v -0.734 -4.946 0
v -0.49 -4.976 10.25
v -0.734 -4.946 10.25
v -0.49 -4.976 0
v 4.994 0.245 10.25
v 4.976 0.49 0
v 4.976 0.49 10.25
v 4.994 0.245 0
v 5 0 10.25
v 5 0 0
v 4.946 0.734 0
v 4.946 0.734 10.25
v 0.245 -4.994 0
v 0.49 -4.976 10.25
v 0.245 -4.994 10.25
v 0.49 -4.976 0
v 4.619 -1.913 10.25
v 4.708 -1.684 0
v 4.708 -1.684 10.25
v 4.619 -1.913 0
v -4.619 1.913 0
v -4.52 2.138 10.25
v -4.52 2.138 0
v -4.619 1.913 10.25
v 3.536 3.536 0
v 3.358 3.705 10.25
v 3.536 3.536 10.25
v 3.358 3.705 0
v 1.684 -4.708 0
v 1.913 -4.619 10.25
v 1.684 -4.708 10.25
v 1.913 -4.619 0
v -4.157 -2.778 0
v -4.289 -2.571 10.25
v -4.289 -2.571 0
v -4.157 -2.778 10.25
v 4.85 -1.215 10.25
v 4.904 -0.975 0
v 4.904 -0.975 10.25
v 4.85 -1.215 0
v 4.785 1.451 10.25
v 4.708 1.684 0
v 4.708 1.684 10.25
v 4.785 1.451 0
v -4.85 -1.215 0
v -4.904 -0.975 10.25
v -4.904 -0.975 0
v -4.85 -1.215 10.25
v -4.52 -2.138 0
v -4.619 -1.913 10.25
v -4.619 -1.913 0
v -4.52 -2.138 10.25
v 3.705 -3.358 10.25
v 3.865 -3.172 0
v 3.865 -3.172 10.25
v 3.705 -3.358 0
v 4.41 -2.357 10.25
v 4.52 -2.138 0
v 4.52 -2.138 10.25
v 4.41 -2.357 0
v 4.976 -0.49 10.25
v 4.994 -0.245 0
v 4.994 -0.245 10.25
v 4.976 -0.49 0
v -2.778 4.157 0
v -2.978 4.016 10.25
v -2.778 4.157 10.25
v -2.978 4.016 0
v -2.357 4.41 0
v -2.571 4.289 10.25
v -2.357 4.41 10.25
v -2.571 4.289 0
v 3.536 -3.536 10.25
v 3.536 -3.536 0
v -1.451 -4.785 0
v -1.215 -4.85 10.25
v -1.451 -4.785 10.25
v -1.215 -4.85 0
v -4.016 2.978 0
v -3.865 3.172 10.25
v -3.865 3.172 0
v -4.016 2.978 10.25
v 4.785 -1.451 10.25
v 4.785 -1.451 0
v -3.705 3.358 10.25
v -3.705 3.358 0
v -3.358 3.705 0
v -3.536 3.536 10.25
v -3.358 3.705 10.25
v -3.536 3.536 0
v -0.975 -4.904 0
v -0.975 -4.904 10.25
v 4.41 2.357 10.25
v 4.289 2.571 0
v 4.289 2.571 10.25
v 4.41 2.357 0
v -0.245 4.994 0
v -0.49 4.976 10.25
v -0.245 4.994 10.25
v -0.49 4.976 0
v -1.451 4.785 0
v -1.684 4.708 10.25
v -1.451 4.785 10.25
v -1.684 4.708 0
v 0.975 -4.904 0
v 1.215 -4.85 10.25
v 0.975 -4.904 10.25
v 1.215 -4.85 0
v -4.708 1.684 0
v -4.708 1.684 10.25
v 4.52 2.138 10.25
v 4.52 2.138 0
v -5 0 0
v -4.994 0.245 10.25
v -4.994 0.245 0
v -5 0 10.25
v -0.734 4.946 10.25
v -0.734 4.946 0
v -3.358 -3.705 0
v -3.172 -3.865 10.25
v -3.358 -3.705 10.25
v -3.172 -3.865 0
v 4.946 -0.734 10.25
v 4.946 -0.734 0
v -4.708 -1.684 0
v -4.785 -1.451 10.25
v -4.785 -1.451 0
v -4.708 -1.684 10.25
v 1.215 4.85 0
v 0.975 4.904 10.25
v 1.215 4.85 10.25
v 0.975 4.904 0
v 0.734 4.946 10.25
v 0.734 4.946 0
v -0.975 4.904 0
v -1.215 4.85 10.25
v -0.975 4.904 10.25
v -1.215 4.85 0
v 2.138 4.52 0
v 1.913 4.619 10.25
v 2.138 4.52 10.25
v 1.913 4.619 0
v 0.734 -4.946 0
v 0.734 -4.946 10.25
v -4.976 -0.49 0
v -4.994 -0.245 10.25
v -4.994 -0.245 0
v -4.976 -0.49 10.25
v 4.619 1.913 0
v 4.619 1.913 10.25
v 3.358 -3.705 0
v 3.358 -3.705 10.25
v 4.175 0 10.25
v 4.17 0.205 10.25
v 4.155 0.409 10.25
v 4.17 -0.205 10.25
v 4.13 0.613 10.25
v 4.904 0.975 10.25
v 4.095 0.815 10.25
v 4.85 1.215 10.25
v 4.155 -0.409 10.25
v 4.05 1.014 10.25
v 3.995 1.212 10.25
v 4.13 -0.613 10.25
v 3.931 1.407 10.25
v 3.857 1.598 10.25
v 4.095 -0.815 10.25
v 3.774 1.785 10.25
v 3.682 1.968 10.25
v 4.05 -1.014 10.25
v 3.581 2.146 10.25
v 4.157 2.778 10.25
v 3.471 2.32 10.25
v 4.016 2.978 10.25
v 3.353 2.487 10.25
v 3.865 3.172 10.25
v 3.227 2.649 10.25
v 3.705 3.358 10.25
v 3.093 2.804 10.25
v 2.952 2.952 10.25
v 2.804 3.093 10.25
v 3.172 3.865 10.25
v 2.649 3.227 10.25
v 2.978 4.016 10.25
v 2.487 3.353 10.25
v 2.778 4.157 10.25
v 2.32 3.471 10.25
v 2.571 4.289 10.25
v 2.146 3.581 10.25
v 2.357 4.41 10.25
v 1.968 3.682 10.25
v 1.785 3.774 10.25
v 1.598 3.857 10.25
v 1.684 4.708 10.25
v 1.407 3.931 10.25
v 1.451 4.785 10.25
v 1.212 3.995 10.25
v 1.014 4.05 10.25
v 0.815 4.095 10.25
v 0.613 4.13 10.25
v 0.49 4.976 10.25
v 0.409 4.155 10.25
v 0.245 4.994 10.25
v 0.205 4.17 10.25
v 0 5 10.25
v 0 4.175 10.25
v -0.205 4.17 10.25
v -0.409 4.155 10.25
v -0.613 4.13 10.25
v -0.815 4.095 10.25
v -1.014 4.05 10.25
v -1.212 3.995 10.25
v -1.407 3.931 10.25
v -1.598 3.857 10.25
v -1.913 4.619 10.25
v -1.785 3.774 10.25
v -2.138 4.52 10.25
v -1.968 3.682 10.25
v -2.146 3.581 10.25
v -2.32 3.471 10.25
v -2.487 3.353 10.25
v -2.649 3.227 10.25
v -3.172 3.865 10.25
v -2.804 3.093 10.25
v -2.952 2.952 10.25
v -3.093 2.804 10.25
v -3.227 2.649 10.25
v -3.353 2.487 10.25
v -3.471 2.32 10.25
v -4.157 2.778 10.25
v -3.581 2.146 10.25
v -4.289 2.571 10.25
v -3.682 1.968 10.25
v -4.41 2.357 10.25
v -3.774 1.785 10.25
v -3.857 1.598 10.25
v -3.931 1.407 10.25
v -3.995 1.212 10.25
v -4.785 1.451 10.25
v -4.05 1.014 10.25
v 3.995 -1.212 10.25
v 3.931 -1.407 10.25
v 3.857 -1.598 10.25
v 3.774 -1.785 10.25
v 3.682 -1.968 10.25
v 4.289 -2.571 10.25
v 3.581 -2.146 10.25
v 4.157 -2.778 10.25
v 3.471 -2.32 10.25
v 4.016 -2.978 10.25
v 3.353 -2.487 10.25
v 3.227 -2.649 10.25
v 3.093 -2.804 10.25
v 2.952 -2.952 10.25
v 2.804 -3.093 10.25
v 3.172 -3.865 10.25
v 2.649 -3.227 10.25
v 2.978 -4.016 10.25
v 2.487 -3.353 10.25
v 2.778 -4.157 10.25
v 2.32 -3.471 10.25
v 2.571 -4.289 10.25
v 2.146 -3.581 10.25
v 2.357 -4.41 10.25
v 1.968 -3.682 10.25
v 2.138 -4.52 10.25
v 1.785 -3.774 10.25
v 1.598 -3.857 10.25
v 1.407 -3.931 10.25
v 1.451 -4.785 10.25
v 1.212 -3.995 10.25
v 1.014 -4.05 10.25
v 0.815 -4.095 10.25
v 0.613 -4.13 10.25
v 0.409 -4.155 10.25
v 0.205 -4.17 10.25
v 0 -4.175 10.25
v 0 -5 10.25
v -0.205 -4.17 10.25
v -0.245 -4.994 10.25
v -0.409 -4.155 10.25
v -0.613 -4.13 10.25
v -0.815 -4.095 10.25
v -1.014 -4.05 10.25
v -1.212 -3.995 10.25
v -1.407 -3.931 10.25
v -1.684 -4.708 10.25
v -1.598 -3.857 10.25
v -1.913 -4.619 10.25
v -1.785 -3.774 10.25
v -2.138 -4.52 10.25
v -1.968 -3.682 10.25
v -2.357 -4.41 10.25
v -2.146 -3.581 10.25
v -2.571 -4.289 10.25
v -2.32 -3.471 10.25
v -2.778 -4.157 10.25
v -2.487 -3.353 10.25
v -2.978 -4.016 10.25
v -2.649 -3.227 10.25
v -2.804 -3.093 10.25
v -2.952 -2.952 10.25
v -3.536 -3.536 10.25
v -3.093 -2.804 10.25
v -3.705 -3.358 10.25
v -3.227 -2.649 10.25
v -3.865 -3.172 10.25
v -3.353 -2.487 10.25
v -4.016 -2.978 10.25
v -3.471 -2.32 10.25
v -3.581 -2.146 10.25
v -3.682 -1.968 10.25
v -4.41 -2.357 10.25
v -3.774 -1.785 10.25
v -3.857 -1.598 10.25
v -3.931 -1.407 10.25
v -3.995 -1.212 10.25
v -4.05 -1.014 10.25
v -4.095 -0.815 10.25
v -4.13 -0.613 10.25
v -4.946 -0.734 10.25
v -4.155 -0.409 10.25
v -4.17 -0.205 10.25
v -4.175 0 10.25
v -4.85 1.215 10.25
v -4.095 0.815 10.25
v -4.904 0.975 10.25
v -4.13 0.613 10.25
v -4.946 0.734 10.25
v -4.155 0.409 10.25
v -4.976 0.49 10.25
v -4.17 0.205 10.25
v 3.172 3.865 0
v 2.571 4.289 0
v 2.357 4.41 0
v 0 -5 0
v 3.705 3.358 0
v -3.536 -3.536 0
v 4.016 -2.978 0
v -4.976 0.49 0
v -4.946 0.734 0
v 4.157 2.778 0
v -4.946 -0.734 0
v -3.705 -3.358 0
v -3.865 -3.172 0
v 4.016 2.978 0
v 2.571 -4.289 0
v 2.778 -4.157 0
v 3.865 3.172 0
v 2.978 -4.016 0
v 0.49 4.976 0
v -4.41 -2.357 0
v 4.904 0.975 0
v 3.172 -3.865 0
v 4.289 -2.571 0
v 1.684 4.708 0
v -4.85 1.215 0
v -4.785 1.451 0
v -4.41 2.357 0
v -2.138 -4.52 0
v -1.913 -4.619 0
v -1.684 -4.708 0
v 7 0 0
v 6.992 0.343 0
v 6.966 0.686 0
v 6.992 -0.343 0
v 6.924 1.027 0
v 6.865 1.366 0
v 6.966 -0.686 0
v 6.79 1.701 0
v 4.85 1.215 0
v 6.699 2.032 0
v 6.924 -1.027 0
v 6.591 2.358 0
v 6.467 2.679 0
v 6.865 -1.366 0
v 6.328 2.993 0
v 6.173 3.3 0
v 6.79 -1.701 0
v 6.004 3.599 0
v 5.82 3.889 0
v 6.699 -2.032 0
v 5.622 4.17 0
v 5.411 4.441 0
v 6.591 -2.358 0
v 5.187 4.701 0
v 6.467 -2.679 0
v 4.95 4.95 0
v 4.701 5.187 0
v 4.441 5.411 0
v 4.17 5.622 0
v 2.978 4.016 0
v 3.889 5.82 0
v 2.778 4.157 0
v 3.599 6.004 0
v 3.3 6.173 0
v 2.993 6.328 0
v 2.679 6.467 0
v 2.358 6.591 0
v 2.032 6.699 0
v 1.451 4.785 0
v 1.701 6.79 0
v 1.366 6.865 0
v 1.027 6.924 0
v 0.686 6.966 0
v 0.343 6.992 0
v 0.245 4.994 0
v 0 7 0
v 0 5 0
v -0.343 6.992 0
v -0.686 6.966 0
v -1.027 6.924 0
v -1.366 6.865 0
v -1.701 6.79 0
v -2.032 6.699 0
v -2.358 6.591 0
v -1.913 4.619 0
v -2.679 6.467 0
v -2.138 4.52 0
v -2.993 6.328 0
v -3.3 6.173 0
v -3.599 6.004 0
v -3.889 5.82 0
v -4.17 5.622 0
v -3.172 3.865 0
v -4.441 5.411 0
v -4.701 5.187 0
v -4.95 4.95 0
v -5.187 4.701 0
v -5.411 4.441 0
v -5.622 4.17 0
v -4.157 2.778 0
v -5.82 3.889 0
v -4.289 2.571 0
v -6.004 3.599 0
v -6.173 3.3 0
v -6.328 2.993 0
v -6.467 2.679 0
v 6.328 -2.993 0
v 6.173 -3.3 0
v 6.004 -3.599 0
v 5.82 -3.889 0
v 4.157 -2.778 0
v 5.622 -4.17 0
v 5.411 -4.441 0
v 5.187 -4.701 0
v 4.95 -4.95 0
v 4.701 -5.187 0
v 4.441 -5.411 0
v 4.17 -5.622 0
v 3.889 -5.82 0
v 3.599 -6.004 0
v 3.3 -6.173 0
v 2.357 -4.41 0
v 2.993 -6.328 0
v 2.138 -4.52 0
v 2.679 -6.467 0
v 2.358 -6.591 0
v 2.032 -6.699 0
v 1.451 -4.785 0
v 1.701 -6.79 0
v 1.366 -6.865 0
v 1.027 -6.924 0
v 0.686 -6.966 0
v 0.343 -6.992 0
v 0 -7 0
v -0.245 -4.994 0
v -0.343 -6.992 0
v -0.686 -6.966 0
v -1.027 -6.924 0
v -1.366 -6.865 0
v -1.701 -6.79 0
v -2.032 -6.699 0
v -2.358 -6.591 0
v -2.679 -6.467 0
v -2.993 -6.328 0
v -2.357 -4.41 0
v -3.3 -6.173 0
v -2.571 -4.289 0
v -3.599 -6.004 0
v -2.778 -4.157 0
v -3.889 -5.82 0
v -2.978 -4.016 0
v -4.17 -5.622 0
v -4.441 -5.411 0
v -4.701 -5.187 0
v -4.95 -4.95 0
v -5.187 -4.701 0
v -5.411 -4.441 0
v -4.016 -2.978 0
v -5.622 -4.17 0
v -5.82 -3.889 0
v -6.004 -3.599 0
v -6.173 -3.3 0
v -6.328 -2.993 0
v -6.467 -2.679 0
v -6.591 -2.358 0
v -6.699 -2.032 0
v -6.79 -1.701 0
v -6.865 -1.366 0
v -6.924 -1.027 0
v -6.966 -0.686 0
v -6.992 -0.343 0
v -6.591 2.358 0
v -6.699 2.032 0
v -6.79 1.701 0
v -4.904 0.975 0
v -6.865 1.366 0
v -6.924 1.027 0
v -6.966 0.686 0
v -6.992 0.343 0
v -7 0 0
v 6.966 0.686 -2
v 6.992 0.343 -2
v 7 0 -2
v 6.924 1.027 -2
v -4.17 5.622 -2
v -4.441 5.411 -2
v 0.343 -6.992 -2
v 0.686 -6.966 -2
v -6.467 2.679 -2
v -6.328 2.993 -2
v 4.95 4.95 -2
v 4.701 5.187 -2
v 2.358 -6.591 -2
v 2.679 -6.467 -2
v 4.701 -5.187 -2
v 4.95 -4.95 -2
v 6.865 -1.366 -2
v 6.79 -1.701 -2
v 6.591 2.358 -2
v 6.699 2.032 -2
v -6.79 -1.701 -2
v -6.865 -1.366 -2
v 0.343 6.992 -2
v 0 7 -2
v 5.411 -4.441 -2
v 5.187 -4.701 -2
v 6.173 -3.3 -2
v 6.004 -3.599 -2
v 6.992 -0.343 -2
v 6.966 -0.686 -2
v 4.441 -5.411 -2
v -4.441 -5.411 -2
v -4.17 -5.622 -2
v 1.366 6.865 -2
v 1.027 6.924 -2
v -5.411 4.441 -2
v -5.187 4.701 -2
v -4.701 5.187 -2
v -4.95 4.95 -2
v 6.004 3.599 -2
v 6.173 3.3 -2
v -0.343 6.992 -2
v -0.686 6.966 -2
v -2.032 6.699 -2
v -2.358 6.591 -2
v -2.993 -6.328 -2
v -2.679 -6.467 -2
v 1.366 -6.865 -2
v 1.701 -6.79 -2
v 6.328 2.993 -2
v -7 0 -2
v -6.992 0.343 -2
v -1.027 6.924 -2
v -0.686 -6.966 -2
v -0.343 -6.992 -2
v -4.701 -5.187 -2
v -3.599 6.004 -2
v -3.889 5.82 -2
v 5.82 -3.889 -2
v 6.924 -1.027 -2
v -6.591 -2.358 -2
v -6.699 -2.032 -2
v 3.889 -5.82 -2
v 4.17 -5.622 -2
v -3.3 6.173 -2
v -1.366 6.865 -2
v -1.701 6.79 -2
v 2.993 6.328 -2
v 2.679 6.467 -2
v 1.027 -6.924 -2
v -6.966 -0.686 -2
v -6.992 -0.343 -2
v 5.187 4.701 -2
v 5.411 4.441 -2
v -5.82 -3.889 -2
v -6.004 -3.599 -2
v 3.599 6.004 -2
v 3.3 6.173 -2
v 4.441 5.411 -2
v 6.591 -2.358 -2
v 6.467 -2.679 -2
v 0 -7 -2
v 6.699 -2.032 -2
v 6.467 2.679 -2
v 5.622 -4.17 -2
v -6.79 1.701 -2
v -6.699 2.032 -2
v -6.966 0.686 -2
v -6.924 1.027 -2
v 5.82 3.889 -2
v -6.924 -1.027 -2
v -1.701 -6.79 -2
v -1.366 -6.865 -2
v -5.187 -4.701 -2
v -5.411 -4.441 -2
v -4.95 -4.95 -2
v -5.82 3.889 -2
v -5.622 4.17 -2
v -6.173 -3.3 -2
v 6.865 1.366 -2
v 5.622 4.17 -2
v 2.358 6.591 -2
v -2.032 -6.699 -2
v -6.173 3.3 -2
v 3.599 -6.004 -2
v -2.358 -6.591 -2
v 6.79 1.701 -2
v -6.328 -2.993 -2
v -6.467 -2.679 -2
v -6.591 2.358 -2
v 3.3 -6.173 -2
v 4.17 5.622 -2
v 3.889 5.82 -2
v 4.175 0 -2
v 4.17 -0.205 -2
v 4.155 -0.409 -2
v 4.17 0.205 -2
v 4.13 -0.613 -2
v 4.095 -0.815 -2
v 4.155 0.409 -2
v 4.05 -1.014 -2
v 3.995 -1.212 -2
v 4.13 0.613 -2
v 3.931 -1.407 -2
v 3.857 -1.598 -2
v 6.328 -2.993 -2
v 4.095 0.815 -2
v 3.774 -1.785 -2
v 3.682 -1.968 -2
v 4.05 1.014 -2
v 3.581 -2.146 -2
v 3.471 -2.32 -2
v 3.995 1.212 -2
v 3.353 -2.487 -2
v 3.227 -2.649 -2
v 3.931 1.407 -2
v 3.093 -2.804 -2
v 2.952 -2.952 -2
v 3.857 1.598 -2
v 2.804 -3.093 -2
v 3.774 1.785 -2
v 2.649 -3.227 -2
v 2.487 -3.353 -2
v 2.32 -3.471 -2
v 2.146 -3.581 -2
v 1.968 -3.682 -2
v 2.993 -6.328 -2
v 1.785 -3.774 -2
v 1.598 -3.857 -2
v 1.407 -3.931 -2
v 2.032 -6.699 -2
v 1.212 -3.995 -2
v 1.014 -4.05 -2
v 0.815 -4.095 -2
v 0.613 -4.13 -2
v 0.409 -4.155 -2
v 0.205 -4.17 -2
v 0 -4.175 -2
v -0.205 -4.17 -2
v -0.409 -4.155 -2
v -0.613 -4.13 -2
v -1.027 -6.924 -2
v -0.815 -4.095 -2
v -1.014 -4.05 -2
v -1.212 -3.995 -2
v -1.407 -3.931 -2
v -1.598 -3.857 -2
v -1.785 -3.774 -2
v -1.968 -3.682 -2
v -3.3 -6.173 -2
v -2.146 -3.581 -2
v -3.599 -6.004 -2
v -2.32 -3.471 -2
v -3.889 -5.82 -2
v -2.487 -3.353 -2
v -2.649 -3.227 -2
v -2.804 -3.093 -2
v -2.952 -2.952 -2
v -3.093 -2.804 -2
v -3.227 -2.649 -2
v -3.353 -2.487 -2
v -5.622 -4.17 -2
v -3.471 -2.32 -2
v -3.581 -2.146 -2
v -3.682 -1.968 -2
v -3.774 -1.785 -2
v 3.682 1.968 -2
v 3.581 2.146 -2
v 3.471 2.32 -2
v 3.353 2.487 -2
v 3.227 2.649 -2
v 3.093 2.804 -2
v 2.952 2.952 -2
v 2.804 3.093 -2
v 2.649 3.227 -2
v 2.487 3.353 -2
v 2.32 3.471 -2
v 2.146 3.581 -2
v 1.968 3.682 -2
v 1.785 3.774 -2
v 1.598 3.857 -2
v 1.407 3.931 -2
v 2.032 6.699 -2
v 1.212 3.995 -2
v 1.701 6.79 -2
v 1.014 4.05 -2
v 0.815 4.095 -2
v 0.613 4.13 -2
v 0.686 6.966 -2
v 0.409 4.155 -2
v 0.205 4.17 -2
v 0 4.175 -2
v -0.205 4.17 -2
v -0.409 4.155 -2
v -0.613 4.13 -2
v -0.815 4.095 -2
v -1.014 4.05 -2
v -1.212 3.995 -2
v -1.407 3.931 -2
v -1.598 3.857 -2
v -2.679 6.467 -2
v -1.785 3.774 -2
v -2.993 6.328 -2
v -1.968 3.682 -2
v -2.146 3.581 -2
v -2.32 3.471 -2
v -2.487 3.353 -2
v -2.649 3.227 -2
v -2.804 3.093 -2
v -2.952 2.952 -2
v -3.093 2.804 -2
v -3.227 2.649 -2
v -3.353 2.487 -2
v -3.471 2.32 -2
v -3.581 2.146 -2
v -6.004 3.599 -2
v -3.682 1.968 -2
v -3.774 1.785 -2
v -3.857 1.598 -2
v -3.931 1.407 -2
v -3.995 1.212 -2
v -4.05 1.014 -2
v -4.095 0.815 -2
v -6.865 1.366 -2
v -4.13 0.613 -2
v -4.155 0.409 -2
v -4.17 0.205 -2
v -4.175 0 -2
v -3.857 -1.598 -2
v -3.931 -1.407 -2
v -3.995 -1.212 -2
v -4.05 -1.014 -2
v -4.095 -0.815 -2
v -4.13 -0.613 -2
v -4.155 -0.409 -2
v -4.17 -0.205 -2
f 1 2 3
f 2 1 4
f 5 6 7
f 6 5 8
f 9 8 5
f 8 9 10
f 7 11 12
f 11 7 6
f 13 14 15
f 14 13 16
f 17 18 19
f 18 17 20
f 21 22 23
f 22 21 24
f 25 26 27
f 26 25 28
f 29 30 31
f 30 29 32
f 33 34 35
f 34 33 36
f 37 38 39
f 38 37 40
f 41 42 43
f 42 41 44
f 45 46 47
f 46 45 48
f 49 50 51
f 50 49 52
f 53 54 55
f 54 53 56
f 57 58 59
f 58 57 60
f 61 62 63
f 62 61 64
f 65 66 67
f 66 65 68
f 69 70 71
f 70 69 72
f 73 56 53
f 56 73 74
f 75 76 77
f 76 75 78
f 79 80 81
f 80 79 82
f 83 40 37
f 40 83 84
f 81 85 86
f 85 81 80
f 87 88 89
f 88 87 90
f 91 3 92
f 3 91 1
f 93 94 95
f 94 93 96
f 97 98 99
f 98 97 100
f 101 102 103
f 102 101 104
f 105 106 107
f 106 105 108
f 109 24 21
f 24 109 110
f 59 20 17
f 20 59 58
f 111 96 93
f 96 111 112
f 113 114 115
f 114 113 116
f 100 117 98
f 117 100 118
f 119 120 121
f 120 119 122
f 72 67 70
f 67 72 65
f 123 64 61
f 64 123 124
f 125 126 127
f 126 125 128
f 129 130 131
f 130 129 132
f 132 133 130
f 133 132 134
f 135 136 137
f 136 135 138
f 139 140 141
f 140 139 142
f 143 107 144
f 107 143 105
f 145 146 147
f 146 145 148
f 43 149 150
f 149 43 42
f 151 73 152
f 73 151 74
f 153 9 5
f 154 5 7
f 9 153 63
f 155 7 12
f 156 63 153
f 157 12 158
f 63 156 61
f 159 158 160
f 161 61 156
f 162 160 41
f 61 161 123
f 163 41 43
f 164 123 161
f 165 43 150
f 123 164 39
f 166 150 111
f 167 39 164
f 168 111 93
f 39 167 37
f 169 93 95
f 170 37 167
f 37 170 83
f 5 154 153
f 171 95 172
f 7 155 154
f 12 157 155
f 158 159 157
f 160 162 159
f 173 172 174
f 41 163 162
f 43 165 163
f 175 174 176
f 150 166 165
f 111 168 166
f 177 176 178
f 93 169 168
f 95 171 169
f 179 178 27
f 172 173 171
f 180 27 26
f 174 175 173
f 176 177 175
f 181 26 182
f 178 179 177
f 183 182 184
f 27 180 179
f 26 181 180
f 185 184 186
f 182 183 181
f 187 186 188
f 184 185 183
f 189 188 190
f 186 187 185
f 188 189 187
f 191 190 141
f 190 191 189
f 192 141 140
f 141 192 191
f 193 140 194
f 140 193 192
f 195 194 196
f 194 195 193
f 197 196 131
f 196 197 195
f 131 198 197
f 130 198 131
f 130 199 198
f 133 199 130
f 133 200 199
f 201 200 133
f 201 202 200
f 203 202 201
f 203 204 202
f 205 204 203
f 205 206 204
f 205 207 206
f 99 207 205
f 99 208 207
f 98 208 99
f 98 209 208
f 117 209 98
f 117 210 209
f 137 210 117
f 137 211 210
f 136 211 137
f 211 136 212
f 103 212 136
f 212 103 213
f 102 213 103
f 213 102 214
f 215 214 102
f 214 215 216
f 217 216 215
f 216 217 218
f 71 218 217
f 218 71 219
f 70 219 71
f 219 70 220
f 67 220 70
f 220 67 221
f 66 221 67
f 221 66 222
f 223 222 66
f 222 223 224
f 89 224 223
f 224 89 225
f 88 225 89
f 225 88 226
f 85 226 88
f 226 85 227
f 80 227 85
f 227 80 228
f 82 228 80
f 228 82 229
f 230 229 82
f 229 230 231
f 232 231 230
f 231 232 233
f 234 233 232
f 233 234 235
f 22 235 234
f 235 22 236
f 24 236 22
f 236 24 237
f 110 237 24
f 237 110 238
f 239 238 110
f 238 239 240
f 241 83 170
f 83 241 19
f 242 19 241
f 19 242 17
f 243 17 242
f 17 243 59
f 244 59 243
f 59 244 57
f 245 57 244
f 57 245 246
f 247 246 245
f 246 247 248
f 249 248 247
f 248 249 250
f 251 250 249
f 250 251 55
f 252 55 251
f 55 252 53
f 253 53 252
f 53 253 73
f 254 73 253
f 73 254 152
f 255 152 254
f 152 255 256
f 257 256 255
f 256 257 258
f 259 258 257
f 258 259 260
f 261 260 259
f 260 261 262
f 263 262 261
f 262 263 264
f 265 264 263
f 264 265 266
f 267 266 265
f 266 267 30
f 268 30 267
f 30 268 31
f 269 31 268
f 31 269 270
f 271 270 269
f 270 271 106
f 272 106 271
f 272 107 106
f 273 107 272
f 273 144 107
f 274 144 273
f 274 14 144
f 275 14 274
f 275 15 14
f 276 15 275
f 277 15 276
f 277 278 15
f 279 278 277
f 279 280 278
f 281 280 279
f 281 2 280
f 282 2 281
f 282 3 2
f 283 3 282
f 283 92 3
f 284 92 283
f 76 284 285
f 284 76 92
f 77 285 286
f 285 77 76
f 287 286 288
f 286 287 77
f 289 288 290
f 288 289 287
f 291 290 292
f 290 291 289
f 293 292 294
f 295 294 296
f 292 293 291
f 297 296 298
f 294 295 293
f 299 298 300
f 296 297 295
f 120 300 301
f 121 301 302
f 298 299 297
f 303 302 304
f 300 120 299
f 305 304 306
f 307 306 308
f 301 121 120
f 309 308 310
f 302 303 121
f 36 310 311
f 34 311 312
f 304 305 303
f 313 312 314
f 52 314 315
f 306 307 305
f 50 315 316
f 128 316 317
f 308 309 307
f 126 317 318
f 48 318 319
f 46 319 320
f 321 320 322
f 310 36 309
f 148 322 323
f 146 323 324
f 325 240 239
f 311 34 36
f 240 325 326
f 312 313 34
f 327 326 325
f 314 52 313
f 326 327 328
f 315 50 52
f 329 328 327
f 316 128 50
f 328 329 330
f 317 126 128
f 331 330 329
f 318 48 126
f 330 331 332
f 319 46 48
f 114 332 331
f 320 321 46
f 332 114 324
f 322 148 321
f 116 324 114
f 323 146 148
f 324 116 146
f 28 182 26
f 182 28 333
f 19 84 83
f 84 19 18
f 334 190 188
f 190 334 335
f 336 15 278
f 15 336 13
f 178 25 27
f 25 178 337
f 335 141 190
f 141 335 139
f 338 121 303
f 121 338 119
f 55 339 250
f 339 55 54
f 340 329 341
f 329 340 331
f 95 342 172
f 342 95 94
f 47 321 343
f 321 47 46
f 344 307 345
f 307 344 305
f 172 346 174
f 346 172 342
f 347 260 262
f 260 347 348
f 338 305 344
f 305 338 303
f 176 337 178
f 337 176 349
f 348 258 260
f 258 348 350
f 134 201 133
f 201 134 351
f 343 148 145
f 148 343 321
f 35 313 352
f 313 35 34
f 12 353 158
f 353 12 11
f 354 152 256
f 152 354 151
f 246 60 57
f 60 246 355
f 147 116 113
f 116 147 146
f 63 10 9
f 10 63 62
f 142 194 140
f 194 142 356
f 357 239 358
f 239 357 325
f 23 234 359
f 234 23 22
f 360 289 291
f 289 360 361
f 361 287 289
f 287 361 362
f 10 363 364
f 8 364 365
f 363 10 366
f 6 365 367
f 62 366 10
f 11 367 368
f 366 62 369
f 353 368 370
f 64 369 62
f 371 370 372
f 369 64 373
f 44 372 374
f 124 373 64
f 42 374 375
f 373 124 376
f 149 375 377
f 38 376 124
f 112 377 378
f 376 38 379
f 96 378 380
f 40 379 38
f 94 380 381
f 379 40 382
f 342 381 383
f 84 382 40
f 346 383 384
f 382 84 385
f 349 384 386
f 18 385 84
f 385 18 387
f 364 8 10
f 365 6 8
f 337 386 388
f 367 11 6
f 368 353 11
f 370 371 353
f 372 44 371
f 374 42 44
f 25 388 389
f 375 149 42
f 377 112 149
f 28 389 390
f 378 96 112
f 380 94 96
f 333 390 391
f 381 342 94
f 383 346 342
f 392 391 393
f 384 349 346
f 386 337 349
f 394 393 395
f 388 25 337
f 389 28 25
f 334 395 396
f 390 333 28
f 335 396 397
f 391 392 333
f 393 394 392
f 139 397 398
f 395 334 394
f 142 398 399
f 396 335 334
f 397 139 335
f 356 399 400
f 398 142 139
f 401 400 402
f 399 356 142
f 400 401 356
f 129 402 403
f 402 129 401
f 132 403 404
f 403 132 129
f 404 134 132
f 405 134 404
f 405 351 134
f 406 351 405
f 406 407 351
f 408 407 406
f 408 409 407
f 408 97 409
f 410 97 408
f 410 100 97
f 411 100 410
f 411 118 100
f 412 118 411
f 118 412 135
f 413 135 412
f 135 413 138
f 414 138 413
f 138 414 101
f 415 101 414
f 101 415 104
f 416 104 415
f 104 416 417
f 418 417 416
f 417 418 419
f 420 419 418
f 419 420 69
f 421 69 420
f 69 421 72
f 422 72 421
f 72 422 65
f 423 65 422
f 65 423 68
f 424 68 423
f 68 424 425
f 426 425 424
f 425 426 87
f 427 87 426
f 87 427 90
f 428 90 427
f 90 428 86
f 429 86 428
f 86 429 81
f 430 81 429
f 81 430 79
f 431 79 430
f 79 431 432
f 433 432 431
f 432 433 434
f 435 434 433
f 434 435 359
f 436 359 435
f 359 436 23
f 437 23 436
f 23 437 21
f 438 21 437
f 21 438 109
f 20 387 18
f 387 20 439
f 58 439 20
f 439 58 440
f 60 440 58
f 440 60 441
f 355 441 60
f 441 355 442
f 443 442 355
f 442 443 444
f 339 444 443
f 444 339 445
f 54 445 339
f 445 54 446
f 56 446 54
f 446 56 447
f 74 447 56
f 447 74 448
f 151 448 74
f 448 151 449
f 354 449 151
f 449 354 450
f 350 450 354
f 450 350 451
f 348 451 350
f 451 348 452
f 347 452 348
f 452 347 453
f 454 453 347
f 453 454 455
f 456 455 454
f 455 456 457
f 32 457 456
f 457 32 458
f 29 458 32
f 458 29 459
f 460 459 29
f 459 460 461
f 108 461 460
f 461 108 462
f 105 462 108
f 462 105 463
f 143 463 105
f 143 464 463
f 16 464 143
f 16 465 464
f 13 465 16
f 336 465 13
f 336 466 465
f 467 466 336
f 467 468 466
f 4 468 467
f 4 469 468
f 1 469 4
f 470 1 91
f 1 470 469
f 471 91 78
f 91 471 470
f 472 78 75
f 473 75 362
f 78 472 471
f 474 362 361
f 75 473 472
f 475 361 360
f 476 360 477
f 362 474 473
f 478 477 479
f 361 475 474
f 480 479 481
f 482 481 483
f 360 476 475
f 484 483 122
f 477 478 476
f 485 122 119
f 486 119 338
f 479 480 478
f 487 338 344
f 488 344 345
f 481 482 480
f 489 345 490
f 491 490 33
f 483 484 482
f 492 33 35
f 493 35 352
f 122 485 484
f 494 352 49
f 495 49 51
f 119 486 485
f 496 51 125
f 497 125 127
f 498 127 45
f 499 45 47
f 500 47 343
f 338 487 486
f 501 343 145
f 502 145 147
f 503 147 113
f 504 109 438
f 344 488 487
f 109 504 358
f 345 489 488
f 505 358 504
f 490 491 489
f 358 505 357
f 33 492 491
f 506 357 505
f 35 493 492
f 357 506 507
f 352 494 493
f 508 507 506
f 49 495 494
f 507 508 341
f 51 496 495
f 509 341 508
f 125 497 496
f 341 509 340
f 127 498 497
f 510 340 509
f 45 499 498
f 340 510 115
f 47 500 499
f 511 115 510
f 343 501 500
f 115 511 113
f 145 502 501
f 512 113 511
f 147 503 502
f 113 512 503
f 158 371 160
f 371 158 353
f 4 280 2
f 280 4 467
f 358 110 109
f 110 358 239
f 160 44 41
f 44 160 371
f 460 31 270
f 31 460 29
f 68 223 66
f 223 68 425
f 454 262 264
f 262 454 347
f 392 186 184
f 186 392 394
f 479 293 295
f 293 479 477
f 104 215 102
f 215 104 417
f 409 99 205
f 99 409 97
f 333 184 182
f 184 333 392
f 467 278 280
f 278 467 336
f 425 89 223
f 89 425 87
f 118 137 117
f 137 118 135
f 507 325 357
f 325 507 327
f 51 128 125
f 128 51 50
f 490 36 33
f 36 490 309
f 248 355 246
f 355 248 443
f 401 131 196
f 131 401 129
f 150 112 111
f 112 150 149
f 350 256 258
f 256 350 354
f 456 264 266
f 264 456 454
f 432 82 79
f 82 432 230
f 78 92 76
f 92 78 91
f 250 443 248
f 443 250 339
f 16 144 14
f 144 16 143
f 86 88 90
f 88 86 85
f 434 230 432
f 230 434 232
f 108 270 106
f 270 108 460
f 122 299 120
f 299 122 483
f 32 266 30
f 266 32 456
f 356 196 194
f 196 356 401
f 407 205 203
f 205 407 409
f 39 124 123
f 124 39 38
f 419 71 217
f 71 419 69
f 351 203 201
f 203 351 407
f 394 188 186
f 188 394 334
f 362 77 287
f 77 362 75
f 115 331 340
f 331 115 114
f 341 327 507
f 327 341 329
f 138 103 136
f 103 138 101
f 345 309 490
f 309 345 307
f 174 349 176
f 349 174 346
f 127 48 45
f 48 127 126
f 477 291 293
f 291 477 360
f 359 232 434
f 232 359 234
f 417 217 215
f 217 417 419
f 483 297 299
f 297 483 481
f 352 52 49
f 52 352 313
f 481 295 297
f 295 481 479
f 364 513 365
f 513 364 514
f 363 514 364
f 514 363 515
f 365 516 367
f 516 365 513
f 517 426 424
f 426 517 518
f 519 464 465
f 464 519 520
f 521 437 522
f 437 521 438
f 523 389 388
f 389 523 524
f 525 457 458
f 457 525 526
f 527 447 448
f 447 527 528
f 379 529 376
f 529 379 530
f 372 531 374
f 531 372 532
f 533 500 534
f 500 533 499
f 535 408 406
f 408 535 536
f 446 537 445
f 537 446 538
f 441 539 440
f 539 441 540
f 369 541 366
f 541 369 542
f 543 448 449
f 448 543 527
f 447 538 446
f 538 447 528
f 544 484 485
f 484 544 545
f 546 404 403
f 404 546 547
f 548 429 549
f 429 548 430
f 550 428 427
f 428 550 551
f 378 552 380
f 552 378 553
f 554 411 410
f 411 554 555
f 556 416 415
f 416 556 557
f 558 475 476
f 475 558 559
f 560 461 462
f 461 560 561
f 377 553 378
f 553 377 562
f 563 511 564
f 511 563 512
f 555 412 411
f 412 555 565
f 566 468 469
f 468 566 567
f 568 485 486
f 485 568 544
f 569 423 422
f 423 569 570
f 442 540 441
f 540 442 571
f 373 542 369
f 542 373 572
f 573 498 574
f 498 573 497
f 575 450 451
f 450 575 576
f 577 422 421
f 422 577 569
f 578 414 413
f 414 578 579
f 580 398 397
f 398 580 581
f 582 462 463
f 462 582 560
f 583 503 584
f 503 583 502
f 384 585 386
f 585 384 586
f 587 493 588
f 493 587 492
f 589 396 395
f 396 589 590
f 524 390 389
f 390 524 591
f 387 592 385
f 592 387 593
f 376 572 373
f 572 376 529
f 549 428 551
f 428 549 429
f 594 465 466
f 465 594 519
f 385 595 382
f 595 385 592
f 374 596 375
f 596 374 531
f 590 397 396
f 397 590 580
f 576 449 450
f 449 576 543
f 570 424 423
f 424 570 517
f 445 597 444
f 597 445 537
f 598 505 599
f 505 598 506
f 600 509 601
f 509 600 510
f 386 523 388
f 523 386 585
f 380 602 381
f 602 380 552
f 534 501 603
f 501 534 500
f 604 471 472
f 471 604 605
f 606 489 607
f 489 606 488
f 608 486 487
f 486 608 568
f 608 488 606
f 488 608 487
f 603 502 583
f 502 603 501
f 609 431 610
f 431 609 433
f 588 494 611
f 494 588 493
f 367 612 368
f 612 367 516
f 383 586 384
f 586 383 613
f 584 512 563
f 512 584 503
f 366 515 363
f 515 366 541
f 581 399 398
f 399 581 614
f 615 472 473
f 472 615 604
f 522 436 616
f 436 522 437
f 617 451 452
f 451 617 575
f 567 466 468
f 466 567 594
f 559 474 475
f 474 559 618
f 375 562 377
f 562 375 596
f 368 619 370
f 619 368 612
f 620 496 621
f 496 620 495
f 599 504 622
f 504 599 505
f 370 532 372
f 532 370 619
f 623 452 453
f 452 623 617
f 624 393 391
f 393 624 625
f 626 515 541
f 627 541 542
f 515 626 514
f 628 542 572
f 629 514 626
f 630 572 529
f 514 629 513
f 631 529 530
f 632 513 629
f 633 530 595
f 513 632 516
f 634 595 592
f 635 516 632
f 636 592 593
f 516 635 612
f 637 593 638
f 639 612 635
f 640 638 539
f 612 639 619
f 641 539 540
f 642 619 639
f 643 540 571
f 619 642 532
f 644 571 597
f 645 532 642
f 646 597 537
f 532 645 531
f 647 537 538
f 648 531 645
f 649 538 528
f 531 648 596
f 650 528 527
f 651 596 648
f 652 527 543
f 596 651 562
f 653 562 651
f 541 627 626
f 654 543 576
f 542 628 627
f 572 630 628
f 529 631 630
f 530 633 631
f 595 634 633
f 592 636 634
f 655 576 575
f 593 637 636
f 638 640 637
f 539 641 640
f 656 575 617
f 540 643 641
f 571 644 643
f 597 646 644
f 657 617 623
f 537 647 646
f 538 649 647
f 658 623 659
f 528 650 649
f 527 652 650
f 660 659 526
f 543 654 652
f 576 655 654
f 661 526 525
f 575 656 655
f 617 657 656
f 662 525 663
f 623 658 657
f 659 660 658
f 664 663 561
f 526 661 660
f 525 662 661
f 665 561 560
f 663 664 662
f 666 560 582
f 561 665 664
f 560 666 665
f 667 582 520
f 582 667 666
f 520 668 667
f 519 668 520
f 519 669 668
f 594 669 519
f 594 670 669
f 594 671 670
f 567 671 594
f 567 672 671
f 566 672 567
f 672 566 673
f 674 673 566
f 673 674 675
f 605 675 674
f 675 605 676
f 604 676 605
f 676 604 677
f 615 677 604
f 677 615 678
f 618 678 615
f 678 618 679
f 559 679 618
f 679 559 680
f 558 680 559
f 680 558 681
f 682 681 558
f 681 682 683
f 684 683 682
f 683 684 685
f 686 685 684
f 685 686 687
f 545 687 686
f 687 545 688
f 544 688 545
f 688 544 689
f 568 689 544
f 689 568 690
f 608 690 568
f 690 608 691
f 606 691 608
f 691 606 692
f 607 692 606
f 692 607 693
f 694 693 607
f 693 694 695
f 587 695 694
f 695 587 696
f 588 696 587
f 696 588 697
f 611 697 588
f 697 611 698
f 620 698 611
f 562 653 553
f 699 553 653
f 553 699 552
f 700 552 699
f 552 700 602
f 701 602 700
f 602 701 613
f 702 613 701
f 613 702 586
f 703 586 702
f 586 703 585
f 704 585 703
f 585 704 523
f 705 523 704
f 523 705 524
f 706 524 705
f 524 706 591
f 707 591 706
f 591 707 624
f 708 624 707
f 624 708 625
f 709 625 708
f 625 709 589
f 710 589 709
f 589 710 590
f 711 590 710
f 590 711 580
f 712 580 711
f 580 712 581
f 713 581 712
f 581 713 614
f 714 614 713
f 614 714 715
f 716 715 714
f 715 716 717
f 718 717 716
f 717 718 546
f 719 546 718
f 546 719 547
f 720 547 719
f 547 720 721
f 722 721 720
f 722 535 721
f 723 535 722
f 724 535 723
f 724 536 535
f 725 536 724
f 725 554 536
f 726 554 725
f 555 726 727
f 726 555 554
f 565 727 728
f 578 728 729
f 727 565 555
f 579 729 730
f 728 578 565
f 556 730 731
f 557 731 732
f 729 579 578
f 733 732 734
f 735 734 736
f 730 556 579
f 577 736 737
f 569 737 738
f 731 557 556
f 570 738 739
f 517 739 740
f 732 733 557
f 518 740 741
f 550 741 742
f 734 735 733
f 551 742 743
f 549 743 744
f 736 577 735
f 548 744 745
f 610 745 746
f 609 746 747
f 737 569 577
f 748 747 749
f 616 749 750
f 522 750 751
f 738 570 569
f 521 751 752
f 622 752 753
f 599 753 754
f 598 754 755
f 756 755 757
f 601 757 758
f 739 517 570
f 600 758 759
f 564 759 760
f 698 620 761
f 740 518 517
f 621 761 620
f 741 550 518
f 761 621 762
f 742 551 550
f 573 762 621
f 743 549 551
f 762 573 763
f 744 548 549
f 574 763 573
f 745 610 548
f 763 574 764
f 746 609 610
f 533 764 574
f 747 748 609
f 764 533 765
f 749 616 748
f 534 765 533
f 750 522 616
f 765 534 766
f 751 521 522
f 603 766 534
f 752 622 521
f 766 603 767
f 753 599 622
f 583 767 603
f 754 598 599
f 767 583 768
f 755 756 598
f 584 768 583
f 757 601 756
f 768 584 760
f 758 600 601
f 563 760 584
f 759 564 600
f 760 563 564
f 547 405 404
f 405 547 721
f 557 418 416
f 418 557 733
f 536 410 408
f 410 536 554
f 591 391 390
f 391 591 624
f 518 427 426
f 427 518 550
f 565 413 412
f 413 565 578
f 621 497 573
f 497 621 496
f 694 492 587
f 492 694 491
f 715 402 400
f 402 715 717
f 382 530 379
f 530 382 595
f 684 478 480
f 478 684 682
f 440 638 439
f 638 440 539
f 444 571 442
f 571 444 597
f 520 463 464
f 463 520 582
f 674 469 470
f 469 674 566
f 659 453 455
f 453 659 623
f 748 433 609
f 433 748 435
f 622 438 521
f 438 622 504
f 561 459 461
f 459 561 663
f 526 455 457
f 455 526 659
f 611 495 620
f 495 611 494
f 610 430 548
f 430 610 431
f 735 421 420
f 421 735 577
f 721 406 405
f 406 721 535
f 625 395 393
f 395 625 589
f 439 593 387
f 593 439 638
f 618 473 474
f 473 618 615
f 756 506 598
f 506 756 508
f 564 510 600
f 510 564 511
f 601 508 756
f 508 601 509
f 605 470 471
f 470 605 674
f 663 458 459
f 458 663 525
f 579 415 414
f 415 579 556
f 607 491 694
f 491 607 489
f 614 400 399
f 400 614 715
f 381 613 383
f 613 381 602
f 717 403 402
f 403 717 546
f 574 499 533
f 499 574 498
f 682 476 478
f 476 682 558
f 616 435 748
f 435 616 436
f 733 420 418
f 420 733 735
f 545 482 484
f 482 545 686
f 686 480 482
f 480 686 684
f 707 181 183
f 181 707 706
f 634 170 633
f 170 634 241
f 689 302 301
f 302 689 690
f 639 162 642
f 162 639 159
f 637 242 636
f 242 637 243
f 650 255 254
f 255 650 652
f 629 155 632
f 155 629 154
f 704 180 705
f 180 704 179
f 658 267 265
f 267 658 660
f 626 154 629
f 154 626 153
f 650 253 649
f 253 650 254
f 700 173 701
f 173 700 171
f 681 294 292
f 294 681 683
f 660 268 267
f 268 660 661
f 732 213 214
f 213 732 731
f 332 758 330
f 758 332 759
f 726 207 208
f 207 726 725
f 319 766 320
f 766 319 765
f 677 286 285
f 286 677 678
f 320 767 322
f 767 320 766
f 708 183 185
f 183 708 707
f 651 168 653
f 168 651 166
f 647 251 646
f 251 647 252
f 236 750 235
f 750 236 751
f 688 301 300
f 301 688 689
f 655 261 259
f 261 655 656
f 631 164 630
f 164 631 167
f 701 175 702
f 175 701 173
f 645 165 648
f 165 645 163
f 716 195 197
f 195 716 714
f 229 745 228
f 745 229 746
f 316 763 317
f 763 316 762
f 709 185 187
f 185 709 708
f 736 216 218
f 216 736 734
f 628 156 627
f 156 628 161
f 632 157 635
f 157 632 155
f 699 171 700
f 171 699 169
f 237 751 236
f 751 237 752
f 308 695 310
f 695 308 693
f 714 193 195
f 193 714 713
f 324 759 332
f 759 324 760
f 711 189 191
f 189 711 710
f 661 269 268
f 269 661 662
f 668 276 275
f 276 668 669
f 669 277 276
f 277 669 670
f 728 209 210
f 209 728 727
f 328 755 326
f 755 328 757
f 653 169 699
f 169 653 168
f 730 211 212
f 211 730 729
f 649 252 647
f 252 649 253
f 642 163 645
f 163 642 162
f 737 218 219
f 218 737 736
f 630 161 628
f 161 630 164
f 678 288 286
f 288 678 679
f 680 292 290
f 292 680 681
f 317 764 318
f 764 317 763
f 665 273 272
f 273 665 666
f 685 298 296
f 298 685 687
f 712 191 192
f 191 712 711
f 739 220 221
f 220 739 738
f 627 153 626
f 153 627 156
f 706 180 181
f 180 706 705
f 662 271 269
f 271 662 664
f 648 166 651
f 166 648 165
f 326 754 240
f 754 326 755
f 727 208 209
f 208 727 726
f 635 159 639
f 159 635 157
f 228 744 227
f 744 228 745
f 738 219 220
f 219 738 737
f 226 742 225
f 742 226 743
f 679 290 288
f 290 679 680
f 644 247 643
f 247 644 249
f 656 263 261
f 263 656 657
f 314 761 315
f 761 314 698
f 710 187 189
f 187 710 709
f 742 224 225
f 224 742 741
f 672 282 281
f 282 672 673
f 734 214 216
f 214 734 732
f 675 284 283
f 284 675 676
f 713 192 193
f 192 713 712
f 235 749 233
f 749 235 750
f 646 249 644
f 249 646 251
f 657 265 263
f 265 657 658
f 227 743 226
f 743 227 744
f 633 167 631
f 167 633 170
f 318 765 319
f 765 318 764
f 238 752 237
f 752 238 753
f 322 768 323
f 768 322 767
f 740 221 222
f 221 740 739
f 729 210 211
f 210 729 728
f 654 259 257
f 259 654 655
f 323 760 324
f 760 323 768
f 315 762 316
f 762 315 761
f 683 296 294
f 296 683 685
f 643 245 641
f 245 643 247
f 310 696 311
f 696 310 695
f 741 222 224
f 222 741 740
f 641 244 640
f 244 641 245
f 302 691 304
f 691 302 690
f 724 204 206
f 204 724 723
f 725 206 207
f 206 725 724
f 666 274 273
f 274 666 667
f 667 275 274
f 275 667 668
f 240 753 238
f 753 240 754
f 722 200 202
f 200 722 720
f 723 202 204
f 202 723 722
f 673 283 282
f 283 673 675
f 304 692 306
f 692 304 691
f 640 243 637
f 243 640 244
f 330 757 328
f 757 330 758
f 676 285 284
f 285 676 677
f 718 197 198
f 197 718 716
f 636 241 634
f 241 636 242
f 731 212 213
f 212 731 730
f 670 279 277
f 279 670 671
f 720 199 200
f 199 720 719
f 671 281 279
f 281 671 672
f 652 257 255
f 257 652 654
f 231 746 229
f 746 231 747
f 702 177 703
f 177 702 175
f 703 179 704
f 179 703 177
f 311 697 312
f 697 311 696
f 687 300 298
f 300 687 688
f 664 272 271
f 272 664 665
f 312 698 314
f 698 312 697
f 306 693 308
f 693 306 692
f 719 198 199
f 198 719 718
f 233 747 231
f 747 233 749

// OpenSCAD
$fn=128;

// One rotating flanged bushing; print two per clamp.
// Body is 0.25 mm longer than the 10.00 mm clamp bearing section so
// tightening screw shoulder <-> knob cannot pinch the stationary clamp.
body_od = 10.00;
body_id = 8.35;
body_len = 10.25;
flange_od = 14.00;
flange_h = 2.00;

difference() {
    union() {
        cylinder(d=body_od,h=body_len);
        translate([0,0,-flange_h])
            cylinder(d=flange_od,h=flange_h);
    }
    translate([0,0,-flange_h-0.5])
        cylinder(d=body_id,h=body_len+flange_h+1.0);
}
